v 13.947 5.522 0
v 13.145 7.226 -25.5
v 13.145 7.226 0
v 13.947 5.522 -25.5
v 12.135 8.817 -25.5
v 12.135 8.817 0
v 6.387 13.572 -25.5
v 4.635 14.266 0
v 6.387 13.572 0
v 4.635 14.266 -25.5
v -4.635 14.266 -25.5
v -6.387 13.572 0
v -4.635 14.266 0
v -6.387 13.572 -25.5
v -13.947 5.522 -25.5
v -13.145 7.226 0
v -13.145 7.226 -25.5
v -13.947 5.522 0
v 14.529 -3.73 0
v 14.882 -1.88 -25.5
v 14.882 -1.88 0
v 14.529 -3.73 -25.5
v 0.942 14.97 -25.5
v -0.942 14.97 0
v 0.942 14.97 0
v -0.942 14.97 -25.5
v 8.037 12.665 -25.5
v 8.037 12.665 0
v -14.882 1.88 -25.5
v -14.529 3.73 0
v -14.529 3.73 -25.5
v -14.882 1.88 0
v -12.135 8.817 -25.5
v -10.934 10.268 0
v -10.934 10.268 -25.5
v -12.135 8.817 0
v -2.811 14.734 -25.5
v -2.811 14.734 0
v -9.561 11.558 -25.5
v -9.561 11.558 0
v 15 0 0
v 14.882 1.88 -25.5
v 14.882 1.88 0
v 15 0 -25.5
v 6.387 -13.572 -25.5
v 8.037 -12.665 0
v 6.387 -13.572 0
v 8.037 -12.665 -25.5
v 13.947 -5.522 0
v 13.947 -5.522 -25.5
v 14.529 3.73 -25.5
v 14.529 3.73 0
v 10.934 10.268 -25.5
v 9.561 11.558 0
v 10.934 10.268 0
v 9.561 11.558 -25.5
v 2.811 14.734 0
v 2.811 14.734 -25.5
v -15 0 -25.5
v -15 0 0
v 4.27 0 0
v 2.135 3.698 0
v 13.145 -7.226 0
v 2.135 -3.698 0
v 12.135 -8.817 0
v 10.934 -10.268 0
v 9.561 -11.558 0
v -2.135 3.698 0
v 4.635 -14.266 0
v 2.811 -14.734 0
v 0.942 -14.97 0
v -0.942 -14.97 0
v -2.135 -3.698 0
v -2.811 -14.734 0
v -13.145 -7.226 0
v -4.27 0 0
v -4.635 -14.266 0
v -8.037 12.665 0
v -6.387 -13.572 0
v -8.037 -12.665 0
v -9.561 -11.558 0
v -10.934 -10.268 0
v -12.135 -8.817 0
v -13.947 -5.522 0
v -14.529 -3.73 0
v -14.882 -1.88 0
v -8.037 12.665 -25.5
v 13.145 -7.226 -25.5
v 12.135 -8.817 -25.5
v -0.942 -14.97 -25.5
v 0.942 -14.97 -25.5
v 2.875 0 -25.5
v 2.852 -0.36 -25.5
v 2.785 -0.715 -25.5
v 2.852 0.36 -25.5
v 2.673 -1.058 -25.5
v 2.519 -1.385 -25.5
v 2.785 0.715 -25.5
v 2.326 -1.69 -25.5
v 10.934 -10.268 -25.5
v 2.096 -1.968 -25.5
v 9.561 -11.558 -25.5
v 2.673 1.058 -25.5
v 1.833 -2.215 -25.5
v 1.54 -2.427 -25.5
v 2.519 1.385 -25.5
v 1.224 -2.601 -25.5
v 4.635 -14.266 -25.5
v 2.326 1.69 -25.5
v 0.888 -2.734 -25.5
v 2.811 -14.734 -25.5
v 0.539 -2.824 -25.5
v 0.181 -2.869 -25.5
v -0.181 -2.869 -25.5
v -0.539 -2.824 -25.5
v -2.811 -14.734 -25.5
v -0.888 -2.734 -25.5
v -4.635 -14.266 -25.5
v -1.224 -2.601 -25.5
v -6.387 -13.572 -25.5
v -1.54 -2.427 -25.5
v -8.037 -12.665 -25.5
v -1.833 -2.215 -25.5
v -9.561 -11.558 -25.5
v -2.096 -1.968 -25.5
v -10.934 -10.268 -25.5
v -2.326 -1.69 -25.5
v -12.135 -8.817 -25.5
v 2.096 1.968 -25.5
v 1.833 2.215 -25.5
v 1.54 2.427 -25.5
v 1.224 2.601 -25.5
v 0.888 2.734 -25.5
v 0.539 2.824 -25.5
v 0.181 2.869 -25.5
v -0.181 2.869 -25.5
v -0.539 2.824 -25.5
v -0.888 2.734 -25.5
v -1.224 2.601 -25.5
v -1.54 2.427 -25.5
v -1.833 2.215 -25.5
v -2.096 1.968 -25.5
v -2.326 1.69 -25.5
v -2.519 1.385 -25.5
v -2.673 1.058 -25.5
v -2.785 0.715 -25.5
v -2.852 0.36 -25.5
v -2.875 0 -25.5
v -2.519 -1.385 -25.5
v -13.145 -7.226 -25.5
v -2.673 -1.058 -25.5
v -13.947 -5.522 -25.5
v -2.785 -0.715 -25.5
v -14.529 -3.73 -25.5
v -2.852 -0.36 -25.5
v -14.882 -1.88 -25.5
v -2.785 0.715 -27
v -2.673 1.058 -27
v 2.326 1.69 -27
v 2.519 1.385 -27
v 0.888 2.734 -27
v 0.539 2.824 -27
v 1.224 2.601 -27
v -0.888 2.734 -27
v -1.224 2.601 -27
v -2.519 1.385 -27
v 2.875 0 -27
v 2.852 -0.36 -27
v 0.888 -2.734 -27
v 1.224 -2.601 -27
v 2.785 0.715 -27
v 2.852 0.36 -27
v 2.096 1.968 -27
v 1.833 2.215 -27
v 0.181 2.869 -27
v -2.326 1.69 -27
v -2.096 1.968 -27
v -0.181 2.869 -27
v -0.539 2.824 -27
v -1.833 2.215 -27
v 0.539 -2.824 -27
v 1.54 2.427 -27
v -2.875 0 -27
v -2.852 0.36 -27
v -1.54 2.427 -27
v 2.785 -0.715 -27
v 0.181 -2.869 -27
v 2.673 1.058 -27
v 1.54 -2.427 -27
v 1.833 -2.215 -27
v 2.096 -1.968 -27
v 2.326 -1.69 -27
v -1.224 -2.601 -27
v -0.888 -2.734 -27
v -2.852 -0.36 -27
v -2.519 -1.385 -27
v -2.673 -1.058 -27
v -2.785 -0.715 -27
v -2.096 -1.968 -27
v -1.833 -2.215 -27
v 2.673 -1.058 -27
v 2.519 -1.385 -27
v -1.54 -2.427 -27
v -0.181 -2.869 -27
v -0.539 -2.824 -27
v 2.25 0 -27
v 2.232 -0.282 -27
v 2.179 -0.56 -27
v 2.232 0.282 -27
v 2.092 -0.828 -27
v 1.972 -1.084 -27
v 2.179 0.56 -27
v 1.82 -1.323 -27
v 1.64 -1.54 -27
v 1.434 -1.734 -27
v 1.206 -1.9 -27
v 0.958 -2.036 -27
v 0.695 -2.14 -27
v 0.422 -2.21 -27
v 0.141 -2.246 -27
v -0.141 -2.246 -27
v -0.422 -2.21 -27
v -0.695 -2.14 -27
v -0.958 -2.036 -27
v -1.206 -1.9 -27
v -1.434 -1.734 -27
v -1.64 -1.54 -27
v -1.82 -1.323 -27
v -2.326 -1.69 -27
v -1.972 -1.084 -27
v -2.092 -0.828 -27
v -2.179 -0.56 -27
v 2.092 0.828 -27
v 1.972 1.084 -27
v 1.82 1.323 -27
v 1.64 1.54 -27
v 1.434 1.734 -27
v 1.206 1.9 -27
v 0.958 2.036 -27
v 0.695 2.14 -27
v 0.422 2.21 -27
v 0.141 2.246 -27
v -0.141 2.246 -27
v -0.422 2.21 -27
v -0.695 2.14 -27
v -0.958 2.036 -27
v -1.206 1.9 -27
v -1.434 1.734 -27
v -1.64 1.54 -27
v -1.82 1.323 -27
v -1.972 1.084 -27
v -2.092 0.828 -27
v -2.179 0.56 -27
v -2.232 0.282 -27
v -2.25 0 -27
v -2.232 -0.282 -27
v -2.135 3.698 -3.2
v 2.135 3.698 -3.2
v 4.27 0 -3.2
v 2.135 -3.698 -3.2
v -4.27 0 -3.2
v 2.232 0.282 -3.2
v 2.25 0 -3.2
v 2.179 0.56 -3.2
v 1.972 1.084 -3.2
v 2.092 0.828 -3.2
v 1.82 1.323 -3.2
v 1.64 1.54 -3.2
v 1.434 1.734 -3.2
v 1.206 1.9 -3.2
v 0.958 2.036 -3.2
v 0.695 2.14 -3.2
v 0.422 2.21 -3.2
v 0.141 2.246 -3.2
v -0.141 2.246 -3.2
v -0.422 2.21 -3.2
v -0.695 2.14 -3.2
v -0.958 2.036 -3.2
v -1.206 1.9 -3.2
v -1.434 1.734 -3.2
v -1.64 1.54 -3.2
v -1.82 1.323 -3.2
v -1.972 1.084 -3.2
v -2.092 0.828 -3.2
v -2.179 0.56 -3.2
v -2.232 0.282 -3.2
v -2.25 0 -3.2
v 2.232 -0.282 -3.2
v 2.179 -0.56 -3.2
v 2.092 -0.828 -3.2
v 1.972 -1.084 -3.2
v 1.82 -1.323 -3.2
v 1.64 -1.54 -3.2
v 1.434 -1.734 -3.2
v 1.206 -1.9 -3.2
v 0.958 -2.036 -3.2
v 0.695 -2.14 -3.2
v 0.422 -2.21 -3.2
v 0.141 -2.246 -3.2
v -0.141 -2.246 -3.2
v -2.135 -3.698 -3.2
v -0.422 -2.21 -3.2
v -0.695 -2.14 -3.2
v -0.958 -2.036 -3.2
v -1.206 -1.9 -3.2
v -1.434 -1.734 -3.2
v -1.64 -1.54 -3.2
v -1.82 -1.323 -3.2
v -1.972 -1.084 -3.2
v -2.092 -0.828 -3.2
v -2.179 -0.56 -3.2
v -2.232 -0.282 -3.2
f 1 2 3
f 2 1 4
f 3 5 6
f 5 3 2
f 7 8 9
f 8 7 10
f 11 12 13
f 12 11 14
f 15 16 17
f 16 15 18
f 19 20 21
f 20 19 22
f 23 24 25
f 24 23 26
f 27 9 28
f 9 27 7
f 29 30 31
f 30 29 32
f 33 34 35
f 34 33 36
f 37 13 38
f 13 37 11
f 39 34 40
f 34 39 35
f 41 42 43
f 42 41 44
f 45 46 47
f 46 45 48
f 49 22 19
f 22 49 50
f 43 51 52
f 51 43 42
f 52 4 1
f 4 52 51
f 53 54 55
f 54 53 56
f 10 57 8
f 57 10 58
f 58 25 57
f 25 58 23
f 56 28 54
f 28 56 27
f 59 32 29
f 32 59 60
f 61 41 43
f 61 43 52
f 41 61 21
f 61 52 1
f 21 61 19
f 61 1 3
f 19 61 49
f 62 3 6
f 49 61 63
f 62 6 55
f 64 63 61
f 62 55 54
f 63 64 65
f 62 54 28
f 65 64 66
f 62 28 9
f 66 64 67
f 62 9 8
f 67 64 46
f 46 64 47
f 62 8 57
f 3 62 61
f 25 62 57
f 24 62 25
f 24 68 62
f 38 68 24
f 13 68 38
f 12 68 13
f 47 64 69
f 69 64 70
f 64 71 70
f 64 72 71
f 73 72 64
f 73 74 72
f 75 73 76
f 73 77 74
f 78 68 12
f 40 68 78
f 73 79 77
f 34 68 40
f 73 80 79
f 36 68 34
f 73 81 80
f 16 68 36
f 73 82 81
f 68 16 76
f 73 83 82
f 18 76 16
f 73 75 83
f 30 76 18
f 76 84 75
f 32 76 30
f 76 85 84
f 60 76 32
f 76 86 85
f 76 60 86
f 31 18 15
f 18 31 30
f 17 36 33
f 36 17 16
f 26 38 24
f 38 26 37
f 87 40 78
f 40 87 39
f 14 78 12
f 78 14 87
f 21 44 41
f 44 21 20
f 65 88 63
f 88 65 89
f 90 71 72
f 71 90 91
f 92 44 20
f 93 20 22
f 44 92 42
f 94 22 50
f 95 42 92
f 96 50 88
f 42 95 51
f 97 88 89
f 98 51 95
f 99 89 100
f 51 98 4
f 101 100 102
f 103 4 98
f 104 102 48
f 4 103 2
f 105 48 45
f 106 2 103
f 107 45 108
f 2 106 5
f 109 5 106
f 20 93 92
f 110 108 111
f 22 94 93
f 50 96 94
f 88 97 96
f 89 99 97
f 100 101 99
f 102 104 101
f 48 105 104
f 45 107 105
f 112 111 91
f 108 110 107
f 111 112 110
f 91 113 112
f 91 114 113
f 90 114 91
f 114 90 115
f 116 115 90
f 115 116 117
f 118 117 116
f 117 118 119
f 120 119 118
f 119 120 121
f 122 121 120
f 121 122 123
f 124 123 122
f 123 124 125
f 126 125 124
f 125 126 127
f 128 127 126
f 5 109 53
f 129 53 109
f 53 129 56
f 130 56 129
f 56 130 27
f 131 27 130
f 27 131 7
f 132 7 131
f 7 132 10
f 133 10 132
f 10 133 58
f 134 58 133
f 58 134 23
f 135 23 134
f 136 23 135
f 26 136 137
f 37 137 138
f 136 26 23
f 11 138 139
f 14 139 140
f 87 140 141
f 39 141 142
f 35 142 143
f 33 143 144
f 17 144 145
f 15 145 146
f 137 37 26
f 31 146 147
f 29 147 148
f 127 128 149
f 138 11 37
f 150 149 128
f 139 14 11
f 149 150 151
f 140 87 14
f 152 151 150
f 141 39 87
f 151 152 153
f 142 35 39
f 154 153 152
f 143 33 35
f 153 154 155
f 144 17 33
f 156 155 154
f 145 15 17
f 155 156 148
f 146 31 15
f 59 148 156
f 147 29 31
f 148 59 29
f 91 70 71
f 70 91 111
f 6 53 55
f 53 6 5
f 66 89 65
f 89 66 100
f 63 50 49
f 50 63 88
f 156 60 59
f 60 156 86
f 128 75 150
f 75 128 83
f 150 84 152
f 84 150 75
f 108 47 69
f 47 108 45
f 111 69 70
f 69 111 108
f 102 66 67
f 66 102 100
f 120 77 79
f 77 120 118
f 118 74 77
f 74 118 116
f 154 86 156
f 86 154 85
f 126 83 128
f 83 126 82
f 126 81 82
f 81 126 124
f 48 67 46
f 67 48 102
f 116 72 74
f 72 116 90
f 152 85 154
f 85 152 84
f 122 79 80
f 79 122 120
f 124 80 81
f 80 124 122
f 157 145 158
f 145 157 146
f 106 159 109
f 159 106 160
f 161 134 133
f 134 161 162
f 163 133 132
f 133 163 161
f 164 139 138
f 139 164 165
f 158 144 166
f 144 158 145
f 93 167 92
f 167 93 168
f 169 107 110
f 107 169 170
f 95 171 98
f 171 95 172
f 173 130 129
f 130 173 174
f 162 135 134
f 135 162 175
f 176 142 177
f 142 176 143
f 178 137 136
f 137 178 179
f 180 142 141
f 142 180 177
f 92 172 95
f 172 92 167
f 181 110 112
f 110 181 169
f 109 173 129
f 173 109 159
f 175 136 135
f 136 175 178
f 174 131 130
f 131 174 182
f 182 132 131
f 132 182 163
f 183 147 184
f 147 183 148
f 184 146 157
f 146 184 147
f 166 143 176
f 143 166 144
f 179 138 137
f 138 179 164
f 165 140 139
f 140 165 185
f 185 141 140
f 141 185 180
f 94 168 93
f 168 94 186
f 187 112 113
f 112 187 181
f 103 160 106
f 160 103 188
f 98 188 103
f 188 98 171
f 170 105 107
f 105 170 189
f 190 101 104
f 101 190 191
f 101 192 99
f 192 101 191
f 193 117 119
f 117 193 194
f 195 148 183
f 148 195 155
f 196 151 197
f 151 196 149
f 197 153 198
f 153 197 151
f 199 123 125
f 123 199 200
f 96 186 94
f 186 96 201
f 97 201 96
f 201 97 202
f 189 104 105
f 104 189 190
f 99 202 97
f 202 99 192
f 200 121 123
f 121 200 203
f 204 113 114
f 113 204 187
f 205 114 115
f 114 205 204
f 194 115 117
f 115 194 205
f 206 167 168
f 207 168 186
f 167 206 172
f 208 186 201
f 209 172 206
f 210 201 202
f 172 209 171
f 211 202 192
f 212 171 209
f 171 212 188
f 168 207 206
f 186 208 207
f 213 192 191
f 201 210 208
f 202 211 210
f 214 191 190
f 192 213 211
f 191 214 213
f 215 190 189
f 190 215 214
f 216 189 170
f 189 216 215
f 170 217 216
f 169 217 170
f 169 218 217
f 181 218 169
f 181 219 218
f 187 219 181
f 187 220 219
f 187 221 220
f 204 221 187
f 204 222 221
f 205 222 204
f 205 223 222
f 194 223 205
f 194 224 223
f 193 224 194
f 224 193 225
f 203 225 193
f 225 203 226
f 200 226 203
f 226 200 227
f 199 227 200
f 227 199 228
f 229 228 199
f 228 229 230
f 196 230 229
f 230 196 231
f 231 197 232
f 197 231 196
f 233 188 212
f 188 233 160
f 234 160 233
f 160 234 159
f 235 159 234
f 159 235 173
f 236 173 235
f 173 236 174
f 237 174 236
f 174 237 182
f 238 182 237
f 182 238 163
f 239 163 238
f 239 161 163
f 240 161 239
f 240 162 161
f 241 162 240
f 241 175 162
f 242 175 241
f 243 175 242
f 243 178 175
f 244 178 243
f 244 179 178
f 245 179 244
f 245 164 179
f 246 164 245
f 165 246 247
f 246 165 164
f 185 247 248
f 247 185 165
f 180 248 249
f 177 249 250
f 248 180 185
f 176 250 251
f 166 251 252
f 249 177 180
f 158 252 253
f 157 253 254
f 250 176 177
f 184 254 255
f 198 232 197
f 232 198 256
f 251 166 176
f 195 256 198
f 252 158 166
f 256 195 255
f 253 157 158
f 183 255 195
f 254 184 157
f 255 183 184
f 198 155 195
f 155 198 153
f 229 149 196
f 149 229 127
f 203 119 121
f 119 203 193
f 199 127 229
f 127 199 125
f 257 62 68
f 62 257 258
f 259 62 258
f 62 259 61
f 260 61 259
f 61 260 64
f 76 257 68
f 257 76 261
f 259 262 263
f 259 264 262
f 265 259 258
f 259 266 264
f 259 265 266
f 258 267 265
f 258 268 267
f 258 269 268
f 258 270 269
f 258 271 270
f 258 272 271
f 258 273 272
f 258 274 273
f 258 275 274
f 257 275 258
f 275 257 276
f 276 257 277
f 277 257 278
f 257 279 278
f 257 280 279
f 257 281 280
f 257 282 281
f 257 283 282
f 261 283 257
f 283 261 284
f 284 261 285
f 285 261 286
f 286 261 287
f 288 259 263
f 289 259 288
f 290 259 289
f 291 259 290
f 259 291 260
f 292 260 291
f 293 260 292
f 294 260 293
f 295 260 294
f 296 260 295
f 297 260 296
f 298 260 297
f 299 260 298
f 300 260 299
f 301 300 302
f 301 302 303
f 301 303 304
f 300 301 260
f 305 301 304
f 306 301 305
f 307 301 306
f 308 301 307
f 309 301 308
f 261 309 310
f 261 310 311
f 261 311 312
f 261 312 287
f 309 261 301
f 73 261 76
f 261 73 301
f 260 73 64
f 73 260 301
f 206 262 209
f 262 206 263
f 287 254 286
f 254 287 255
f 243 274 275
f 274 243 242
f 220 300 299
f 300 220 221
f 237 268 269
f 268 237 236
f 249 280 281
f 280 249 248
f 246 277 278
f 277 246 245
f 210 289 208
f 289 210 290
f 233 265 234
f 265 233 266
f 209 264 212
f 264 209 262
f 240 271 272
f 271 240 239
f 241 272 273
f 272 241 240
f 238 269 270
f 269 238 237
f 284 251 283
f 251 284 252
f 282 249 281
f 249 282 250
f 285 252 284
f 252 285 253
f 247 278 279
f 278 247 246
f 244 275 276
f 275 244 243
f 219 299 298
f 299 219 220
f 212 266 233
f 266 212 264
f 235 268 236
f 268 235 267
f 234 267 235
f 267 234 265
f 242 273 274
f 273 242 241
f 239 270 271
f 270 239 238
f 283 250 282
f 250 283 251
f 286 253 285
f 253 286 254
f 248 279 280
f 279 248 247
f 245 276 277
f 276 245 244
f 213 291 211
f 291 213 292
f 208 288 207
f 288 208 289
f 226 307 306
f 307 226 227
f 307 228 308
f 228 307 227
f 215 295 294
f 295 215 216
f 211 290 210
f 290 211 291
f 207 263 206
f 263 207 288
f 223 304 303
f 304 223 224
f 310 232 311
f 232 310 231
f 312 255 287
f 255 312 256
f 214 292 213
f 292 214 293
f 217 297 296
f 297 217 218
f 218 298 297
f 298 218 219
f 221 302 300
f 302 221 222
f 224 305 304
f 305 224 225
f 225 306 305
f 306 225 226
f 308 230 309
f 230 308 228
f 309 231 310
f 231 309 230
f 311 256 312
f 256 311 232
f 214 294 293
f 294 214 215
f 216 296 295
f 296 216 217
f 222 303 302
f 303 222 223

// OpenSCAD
$fn = 50;

difference() {
	union() {
		translate(v = [0, 0, -25.5]) {
			cylinder(h = 25.5, r = 15.0);
		}
		#translate(v = [0, 0, -27.0]) {
			cylinder(h = 27, r = 2.875);
		}
	}
	union() {
		translate(v = [0, 0, 0]) {
			rotate(a = [0, 0, 0]) {
				difference() {
					union() {
						translate(v = [0, 0, -3.2]) {
							linear_extrude(height = 3.2) {
								polygon(points = [[4.2698, 0.0], [2.1349000000000005, 3.697755269078796], [-2.134899999999999, 3.6977552690787965], [-4.2698, 5.228996902999369e-16], [-2.134900000000002, -3.6977552690787956], [2.1348999999999974, -3.697755269078798]]);
							}
						}
					}
					union();
				}
			}
		}
		#translate(v = [0, 0, -100.0]) {
			cylinder(h = 200, r = 2.25);
		}
	}
}
